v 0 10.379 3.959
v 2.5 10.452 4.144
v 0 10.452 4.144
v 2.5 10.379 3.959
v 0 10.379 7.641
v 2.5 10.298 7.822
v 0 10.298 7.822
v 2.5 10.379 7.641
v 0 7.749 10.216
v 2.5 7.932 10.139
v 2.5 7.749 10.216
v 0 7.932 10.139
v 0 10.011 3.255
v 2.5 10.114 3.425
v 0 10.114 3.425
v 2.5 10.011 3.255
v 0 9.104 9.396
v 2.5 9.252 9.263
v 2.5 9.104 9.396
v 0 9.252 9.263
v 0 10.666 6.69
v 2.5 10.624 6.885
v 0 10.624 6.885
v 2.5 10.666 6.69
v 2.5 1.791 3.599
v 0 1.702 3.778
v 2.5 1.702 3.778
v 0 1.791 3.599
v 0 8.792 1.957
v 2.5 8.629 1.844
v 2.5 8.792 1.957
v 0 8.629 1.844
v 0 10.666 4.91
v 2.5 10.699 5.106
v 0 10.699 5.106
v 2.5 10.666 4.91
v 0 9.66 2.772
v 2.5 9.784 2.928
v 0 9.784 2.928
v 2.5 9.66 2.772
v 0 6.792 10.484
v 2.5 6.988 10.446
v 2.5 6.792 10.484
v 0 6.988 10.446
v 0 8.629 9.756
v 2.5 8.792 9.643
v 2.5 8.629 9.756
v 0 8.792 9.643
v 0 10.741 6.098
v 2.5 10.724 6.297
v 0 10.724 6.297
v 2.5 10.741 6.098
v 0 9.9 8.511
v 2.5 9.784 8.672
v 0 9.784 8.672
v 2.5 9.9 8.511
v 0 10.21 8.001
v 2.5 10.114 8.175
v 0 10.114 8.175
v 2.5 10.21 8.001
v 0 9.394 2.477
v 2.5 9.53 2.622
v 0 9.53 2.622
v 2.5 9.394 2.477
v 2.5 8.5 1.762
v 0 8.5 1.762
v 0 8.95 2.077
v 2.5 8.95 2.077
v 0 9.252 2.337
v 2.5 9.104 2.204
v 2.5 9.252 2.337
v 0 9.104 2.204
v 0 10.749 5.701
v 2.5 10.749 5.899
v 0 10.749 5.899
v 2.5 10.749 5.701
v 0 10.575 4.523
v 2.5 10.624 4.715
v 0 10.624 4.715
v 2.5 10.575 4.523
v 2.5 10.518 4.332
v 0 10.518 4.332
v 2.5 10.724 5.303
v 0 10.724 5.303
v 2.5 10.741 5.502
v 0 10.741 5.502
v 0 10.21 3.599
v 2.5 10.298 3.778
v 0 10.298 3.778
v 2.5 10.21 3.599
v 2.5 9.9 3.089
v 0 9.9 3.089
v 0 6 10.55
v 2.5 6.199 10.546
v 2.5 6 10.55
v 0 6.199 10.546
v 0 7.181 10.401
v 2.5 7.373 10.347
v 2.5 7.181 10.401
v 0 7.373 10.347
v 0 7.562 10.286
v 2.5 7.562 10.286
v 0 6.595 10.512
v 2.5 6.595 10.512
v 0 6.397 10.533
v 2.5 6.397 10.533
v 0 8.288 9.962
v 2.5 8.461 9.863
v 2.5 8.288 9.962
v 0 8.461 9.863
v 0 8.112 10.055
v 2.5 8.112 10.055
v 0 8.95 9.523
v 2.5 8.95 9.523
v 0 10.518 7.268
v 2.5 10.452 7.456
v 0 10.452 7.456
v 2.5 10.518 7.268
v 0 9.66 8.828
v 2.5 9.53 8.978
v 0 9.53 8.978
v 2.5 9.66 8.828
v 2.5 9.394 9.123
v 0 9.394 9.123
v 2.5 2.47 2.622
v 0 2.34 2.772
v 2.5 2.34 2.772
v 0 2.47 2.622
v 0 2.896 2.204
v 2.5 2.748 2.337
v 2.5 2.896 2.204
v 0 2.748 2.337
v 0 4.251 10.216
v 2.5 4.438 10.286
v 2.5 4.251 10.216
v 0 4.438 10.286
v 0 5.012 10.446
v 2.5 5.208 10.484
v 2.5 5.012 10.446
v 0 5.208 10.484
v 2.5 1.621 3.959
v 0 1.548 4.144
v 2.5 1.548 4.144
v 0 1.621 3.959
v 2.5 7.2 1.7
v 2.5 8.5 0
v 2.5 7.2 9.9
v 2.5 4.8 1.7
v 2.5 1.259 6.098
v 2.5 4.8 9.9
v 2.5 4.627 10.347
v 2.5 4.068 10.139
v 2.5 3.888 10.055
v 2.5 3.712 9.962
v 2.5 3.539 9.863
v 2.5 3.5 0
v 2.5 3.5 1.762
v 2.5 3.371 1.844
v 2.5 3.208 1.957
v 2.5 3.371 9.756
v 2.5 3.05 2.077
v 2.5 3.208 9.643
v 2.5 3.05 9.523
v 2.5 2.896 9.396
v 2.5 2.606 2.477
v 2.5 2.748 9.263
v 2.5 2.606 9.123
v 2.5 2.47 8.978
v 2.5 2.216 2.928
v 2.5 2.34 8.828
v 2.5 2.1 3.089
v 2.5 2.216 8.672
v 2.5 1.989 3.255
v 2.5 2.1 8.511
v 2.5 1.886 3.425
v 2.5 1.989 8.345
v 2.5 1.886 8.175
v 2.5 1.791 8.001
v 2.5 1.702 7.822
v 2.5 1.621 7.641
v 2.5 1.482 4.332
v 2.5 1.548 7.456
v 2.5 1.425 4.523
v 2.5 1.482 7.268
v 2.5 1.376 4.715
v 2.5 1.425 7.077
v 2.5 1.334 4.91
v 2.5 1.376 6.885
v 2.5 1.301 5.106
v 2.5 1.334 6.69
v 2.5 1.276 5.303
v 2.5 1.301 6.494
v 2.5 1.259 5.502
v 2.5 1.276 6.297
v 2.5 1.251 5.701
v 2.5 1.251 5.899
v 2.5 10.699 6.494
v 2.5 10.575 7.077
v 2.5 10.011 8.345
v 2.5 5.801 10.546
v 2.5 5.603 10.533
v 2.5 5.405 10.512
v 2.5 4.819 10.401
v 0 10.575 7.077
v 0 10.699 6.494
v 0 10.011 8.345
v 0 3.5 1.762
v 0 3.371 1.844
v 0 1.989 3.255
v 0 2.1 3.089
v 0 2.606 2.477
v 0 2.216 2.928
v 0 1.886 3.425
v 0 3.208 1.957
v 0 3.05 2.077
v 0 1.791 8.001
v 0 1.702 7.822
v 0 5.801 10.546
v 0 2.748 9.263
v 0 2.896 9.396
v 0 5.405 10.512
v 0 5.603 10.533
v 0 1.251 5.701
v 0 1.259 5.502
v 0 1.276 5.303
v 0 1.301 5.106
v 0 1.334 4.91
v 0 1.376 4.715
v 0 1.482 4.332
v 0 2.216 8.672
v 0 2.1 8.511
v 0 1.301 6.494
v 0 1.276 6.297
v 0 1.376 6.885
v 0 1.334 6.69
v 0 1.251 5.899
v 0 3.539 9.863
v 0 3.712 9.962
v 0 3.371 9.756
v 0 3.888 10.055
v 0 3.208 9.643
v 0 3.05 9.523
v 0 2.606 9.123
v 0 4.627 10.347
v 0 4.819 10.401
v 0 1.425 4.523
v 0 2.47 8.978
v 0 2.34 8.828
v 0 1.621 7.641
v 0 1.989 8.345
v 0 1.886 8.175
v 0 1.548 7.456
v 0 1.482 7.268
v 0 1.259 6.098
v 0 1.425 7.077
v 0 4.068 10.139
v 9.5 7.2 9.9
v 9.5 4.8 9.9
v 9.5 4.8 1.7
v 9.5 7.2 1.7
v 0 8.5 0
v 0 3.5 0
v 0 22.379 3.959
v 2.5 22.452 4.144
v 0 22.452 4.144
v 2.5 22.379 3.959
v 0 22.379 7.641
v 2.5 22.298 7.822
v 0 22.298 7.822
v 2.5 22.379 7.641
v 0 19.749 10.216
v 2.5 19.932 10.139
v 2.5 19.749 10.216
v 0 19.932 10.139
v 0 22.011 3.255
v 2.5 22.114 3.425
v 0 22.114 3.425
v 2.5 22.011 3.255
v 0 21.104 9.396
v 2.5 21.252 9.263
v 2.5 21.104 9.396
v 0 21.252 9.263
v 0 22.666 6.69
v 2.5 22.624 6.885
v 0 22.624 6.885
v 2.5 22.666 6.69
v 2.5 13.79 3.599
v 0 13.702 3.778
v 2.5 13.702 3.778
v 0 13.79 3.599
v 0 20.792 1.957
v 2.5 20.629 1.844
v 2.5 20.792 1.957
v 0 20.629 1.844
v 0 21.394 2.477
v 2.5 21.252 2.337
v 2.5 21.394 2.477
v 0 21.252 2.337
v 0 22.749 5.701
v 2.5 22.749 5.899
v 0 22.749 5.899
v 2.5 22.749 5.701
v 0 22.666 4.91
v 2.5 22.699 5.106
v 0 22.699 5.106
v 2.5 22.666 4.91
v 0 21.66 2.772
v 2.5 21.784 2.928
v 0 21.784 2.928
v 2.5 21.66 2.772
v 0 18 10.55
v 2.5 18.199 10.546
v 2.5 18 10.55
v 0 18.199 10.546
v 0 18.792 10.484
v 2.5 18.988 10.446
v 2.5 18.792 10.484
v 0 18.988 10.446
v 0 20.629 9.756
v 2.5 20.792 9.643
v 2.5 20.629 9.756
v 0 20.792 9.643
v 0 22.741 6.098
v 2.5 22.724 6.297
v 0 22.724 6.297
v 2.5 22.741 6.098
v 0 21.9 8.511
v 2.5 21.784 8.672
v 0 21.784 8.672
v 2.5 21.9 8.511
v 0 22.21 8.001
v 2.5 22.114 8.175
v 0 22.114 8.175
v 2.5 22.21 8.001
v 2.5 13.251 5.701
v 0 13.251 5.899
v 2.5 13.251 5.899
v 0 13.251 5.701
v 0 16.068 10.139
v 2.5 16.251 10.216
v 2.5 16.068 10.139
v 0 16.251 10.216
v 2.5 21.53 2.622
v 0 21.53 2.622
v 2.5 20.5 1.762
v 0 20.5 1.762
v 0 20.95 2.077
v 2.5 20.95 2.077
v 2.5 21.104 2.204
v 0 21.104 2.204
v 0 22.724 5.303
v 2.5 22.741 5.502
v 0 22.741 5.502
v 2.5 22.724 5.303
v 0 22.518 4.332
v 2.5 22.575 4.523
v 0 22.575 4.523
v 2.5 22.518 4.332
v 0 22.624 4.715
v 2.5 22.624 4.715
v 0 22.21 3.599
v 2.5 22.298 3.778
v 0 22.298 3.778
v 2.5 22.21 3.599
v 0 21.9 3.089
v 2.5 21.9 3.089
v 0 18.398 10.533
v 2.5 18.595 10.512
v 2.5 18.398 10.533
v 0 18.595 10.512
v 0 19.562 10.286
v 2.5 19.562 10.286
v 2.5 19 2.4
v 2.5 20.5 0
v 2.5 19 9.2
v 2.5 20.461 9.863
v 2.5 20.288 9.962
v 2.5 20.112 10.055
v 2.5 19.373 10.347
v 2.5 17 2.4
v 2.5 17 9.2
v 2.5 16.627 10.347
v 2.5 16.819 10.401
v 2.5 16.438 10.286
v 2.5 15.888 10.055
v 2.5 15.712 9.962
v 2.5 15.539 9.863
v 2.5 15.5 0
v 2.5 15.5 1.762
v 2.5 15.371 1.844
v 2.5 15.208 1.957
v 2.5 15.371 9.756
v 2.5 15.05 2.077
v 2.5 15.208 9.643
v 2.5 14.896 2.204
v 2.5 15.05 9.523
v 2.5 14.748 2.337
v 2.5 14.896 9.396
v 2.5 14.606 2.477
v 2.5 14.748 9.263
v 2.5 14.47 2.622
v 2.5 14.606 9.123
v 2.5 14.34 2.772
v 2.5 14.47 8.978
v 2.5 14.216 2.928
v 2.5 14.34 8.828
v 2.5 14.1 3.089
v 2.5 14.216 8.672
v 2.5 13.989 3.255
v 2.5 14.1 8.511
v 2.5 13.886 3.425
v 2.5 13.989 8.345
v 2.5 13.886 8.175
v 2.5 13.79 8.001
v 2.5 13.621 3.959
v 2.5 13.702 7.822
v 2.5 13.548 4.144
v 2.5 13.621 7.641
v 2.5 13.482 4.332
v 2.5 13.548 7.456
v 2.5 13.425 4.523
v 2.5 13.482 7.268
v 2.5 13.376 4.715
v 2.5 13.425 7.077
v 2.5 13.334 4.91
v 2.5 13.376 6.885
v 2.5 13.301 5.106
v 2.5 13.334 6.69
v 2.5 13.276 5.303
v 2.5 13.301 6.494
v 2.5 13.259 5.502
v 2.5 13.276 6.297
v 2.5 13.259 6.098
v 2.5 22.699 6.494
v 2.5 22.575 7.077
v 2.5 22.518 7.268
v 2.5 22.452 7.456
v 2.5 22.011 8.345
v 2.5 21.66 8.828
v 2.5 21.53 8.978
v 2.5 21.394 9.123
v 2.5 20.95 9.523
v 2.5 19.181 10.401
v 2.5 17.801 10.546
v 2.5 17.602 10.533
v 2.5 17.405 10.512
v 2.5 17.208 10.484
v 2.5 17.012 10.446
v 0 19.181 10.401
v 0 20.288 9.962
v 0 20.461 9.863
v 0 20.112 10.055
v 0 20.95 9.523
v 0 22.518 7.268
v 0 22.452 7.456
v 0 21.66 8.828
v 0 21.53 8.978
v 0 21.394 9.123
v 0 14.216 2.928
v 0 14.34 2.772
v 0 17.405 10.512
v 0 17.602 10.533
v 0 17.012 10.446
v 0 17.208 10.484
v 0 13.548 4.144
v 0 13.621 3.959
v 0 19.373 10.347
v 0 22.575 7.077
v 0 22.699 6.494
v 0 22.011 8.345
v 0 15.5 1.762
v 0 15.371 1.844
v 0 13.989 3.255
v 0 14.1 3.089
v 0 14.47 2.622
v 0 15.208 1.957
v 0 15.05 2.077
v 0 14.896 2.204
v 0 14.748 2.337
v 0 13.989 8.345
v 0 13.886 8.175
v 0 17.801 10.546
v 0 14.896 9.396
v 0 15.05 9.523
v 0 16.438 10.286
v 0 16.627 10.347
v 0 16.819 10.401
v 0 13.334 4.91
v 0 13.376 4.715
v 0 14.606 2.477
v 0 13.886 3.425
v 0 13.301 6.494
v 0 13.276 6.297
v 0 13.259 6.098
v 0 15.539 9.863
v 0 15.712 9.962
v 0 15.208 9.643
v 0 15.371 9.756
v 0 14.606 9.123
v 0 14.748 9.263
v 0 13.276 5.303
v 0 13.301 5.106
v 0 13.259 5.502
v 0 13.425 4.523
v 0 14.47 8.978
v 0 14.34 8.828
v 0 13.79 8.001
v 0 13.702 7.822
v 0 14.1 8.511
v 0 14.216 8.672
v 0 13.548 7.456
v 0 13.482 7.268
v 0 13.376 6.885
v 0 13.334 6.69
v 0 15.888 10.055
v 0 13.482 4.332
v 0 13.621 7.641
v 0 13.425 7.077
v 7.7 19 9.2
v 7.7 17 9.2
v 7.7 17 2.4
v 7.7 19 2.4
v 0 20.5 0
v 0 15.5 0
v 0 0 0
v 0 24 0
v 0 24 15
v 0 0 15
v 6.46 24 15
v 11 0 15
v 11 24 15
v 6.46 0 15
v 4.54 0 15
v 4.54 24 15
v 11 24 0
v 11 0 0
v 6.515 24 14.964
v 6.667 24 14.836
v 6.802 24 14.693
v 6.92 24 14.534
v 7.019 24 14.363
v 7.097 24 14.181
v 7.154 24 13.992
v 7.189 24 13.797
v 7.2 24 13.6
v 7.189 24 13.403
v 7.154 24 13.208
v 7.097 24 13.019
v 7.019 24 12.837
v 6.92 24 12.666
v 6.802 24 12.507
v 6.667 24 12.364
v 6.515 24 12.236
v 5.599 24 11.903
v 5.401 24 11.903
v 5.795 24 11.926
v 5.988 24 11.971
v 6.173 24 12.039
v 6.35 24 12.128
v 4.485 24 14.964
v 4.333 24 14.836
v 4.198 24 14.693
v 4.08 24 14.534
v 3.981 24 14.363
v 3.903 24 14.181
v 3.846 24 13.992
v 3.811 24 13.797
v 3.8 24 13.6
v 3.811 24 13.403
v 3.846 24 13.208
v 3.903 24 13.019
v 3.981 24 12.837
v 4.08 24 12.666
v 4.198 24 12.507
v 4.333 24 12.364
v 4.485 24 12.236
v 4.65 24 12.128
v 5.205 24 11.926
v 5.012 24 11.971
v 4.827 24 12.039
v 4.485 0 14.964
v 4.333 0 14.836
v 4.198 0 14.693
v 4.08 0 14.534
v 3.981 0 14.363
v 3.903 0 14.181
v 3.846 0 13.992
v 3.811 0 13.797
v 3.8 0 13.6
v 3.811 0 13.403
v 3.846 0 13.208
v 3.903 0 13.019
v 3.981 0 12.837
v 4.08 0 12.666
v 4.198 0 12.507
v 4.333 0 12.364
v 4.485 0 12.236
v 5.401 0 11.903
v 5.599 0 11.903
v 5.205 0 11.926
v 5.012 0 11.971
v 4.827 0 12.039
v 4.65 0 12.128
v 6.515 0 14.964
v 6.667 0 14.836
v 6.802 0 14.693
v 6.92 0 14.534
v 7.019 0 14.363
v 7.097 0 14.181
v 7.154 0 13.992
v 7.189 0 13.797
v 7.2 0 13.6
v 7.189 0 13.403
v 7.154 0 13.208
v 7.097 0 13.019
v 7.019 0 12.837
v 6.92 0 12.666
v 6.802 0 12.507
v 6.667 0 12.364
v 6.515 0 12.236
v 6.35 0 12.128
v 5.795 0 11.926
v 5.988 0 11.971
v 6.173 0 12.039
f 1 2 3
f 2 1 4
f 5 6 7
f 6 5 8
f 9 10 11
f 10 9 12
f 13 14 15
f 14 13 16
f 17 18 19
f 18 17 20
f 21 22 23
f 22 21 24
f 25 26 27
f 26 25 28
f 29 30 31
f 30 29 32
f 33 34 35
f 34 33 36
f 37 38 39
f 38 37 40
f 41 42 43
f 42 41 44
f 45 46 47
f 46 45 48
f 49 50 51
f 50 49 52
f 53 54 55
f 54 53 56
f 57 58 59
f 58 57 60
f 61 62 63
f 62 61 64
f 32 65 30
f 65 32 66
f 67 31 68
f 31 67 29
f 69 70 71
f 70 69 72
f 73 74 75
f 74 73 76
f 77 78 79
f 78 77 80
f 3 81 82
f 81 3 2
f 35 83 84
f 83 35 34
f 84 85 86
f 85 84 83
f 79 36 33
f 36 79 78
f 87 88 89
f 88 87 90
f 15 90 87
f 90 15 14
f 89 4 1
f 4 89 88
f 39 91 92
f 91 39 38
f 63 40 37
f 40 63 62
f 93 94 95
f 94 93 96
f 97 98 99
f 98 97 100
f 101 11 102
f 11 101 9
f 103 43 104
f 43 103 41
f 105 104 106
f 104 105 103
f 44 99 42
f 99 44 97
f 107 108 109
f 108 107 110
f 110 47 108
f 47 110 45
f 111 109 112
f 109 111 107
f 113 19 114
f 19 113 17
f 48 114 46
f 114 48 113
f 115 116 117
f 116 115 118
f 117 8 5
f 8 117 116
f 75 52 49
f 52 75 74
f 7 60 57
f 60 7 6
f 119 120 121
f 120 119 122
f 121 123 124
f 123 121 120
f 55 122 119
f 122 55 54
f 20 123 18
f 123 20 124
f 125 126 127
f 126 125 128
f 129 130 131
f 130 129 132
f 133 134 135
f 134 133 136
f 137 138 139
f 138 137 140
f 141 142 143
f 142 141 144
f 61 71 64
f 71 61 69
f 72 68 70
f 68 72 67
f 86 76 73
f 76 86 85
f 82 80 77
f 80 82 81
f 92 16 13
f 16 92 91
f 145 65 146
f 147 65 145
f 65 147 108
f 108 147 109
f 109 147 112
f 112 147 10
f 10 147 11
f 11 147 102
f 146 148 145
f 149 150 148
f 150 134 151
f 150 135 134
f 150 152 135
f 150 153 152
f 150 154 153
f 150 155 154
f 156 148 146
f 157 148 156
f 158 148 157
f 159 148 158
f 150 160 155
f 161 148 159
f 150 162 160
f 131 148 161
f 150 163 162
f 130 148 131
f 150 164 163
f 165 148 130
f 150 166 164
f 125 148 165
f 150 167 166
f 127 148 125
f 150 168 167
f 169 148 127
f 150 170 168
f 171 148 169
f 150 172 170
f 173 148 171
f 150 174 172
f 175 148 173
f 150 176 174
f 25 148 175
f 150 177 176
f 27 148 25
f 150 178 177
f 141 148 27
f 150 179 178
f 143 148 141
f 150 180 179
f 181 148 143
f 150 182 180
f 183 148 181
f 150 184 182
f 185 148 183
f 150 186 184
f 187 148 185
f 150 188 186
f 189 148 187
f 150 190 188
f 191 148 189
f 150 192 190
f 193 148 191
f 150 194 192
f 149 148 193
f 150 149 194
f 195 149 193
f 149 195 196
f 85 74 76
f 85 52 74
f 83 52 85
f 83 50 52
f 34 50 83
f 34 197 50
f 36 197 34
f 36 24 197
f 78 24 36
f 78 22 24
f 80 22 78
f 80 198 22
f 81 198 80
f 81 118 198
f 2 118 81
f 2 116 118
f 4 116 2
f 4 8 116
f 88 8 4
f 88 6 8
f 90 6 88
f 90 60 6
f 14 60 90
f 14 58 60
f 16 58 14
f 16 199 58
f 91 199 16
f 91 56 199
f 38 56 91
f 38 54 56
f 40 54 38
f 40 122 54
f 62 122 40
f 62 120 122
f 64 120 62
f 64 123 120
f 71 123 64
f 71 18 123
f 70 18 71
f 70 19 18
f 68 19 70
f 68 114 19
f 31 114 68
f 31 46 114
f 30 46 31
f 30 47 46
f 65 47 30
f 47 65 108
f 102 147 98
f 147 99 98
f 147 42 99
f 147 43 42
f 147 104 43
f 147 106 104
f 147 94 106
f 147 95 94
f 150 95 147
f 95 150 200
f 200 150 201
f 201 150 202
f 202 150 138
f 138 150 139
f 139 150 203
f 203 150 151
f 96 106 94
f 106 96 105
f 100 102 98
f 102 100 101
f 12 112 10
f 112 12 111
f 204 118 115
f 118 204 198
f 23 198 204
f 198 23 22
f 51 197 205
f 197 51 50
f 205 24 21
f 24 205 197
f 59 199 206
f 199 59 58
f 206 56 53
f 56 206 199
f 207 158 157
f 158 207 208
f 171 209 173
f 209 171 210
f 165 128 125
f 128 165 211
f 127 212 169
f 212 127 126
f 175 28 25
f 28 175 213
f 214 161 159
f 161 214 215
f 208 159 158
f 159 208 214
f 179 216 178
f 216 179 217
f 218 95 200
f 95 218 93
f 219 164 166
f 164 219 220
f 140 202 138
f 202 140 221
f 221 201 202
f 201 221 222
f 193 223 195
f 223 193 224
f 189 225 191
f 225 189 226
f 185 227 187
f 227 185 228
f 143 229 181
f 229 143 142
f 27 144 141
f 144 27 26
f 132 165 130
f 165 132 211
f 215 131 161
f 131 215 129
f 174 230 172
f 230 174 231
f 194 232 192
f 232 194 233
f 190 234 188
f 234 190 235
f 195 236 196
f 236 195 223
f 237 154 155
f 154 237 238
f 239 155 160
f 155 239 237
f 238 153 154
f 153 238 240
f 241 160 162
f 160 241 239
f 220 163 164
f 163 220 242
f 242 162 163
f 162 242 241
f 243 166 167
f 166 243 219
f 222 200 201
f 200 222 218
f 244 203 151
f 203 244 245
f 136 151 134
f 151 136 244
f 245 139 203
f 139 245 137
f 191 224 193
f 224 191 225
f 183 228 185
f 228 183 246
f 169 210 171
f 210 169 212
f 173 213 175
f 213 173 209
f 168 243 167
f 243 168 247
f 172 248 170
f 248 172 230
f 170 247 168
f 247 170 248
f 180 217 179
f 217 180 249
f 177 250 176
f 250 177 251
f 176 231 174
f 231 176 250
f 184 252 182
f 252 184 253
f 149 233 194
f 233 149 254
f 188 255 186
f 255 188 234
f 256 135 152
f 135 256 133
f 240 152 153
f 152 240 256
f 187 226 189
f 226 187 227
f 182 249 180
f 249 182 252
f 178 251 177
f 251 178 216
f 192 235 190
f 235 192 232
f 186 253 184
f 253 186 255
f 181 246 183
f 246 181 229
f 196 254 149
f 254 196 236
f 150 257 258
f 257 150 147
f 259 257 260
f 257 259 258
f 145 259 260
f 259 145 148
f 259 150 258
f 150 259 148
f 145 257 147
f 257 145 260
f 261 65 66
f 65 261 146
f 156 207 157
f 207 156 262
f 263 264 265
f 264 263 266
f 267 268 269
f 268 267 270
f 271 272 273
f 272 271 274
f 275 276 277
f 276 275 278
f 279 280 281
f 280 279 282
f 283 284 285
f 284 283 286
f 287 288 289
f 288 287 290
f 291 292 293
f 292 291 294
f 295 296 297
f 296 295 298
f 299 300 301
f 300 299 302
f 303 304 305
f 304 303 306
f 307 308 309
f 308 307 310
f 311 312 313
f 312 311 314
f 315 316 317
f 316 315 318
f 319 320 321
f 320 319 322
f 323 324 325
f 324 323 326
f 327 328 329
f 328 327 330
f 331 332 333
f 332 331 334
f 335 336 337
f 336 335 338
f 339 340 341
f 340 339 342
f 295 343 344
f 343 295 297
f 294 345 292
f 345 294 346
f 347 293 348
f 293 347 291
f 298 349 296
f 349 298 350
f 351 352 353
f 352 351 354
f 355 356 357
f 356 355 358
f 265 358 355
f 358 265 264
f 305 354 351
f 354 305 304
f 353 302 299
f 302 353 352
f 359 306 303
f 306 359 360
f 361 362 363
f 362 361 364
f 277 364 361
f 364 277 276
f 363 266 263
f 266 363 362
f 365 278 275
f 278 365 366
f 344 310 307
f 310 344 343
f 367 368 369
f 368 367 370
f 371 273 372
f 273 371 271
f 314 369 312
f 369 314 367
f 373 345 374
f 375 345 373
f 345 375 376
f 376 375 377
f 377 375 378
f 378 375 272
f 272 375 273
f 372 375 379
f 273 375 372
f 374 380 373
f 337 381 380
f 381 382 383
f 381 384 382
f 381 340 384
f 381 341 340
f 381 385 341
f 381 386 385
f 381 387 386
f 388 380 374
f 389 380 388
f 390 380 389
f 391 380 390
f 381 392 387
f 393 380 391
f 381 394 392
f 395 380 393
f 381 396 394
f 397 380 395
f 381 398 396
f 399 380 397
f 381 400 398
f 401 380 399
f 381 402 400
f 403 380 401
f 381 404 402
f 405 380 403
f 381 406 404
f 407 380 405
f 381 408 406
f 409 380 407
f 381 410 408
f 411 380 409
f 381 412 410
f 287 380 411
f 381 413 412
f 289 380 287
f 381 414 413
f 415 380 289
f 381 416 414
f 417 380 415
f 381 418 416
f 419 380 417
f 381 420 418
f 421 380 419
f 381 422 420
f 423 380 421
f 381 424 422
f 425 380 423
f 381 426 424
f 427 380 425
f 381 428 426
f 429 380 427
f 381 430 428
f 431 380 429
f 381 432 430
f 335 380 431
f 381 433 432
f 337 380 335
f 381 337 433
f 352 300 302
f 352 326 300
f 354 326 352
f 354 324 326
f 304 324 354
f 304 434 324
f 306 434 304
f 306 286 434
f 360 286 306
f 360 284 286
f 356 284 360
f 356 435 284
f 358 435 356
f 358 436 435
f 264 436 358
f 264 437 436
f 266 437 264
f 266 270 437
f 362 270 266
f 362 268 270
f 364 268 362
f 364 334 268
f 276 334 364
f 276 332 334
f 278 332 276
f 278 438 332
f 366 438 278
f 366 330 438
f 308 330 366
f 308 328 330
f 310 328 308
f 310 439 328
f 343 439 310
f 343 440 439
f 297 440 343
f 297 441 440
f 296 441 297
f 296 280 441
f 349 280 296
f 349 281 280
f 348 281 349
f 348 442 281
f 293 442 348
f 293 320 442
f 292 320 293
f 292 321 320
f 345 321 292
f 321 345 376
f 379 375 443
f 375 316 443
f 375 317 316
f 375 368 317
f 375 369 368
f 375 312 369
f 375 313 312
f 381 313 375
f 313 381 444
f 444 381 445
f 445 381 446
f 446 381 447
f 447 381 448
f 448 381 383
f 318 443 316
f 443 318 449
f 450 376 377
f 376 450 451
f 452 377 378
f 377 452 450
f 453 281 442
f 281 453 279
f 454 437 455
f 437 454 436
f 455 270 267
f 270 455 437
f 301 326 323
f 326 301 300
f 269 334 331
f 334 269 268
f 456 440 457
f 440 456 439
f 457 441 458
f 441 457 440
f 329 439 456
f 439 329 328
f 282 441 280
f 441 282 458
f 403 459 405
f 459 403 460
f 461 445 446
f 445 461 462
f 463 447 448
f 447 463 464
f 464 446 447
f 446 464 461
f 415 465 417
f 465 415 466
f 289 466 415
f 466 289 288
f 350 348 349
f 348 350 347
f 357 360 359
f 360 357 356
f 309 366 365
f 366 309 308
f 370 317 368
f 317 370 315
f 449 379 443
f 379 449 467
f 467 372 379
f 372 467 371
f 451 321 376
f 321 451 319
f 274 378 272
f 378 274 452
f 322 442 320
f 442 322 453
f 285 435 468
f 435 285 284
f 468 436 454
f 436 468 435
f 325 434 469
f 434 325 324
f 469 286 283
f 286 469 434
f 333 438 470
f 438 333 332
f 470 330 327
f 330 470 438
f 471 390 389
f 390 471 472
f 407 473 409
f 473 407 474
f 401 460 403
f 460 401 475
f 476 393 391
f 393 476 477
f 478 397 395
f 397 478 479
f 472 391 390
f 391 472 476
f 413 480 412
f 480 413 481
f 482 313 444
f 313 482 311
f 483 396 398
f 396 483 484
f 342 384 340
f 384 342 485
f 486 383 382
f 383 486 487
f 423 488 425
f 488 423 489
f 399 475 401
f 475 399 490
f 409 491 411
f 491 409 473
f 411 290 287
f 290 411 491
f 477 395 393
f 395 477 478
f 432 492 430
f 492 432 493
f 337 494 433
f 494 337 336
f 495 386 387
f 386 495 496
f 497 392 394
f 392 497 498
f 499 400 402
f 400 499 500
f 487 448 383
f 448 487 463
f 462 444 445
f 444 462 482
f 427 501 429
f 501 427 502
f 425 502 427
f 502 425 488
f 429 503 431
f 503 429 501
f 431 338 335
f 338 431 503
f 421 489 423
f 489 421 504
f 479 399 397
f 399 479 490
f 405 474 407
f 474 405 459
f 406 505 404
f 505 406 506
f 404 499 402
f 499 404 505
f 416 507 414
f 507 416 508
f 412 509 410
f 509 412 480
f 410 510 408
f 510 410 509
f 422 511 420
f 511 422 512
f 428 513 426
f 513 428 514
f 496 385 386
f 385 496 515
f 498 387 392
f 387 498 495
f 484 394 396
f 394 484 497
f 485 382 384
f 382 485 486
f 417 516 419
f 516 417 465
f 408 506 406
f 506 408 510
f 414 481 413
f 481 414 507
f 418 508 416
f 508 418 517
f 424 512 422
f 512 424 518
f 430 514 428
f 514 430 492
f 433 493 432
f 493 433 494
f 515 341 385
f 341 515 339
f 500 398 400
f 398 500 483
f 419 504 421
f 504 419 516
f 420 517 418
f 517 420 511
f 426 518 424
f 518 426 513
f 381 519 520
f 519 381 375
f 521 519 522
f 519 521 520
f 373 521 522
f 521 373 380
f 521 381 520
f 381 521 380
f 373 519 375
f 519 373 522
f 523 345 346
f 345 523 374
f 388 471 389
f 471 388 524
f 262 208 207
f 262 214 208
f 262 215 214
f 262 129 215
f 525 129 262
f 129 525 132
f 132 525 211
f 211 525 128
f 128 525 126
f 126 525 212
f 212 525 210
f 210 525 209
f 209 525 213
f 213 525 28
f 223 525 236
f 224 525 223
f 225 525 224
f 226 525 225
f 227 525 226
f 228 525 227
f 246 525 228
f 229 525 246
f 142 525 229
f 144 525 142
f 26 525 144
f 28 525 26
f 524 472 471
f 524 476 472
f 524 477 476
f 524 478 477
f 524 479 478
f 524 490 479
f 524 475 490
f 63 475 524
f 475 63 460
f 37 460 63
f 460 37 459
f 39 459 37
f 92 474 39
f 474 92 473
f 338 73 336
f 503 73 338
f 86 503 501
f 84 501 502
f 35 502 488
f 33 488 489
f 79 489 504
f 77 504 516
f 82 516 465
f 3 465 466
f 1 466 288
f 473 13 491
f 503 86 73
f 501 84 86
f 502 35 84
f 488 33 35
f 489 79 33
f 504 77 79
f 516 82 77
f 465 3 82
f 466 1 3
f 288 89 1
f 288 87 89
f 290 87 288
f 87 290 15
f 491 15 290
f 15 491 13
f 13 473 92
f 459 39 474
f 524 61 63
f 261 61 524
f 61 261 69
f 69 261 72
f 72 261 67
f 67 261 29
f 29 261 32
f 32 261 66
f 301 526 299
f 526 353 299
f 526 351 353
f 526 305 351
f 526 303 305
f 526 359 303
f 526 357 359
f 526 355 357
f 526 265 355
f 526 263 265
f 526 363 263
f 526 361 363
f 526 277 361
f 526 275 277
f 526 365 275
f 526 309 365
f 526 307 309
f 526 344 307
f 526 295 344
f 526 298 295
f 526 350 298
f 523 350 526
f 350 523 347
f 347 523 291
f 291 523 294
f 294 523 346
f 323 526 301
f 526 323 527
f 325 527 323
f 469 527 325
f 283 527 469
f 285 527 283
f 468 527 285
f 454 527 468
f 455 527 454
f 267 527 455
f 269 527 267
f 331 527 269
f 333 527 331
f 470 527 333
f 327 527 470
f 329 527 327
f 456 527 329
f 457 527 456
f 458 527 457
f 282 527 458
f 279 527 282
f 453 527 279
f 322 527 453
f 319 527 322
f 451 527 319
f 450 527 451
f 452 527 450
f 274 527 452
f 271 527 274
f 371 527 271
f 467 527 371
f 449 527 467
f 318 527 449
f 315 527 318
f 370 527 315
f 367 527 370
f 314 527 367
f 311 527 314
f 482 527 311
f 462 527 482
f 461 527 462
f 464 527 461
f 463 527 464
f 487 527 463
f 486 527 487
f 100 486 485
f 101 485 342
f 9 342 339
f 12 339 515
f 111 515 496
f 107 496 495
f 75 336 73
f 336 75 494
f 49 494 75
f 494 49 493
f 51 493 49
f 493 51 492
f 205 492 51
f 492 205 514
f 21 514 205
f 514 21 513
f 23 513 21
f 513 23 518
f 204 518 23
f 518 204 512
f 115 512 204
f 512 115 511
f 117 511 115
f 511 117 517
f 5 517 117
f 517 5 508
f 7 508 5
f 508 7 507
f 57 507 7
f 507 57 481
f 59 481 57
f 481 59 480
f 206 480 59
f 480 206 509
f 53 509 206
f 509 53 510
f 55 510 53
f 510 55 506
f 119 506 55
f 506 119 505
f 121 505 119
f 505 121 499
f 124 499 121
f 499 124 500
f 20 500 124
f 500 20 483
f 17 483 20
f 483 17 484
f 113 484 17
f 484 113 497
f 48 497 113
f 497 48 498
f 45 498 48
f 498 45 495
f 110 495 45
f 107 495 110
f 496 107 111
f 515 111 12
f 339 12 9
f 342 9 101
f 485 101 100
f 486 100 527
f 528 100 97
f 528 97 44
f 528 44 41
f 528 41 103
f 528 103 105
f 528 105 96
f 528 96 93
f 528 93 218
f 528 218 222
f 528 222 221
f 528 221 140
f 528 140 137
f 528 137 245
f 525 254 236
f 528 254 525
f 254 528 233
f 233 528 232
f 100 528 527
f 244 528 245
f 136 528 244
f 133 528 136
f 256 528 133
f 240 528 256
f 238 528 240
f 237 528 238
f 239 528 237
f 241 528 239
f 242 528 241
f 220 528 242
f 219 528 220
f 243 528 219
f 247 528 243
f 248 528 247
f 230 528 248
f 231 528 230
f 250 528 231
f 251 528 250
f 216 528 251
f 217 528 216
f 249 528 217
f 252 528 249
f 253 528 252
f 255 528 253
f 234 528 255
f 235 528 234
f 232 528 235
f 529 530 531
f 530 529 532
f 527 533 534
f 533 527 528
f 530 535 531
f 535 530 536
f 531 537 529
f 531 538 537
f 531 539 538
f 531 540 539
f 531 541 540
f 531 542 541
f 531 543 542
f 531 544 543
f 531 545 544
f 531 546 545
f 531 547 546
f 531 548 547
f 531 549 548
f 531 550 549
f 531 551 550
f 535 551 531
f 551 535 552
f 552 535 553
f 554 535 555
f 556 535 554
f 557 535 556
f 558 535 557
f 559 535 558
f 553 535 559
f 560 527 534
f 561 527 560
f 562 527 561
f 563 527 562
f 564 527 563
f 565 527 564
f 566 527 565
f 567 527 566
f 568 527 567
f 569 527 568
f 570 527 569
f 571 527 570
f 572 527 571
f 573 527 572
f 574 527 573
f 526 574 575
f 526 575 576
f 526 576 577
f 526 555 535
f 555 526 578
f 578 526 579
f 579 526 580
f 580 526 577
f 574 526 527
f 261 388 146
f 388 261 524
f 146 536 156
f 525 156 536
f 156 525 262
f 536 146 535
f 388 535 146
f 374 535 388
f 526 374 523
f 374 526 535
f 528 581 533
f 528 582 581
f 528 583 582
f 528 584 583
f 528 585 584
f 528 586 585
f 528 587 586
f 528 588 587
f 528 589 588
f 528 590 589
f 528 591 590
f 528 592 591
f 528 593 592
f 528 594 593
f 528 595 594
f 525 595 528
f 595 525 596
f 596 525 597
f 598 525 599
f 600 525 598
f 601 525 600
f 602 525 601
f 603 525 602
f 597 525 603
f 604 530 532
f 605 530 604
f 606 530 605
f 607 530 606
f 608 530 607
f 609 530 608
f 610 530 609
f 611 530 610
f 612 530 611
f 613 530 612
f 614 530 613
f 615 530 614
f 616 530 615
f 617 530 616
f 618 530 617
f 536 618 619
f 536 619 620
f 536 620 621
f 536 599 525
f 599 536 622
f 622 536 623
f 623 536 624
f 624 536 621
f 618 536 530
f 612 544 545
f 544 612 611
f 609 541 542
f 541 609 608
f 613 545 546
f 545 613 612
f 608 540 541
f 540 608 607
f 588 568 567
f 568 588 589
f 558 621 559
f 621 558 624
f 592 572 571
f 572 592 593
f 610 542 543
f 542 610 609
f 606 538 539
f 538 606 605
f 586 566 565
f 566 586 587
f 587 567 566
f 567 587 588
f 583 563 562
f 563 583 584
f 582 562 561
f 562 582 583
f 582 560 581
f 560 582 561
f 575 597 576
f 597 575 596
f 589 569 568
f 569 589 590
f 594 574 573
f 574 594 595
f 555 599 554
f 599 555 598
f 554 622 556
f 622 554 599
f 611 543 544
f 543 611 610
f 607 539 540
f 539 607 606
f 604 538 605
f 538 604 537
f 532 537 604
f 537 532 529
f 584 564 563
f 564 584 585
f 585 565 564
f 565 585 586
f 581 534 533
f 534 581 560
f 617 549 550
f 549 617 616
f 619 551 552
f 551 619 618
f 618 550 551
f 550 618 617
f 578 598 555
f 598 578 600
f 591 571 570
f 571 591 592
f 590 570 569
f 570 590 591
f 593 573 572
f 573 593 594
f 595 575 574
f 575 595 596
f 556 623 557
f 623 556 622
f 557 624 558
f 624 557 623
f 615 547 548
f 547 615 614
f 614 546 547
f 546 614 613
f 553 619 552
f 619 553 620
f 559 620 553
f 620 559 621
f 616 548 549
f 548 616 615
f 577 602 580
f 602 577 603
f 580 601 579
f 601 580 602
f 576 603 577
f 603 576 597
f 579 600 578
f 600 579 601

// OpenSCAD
$fs = $preview ? 0.5 : 0.2;
$fa = $preview ? 10 : 2;

cd = 3.4; // cable diameter
cg = 1.4; // cable insert gap

// holder box
bw = 11;
bh = 15;
bl = 24;

// hole
hd = 9.5;
hh = 2.5;
hs = 5; // slot width at the bottom

eps = 0.5;

difference() {
    cube([bw, bl, bh]);
    translate([bw / 2, bl, bh - cg])
        rotate([90, 0, 0])
            translate([0, 0, -eps])
                cylinder(d = cd, h = bl + 2 * eps);
    translate([0, bl / 4, (bh - cd) / 2])
        hole(8.2, 2.4, 7.0); // usb-c
    translate([0, 3*bl / 4, (bh - cd) / 2])
        hole(6.8, 2.0, 5.2); // mini usb
}


module hole(rw, rh, rl) {
    rotate([0, 90, 0]) {
        translate([0, 0, -eps])
            cylinder(d = hd, h = hh + eps);
        translate([-rw / 2, -rh / 2, hh - eps])
            cube([rw, rh, rl + eps]);
    }
    translate([-eps, -hs / 2, -hd])
        cube([hh + eps, hs, hd]);
}
